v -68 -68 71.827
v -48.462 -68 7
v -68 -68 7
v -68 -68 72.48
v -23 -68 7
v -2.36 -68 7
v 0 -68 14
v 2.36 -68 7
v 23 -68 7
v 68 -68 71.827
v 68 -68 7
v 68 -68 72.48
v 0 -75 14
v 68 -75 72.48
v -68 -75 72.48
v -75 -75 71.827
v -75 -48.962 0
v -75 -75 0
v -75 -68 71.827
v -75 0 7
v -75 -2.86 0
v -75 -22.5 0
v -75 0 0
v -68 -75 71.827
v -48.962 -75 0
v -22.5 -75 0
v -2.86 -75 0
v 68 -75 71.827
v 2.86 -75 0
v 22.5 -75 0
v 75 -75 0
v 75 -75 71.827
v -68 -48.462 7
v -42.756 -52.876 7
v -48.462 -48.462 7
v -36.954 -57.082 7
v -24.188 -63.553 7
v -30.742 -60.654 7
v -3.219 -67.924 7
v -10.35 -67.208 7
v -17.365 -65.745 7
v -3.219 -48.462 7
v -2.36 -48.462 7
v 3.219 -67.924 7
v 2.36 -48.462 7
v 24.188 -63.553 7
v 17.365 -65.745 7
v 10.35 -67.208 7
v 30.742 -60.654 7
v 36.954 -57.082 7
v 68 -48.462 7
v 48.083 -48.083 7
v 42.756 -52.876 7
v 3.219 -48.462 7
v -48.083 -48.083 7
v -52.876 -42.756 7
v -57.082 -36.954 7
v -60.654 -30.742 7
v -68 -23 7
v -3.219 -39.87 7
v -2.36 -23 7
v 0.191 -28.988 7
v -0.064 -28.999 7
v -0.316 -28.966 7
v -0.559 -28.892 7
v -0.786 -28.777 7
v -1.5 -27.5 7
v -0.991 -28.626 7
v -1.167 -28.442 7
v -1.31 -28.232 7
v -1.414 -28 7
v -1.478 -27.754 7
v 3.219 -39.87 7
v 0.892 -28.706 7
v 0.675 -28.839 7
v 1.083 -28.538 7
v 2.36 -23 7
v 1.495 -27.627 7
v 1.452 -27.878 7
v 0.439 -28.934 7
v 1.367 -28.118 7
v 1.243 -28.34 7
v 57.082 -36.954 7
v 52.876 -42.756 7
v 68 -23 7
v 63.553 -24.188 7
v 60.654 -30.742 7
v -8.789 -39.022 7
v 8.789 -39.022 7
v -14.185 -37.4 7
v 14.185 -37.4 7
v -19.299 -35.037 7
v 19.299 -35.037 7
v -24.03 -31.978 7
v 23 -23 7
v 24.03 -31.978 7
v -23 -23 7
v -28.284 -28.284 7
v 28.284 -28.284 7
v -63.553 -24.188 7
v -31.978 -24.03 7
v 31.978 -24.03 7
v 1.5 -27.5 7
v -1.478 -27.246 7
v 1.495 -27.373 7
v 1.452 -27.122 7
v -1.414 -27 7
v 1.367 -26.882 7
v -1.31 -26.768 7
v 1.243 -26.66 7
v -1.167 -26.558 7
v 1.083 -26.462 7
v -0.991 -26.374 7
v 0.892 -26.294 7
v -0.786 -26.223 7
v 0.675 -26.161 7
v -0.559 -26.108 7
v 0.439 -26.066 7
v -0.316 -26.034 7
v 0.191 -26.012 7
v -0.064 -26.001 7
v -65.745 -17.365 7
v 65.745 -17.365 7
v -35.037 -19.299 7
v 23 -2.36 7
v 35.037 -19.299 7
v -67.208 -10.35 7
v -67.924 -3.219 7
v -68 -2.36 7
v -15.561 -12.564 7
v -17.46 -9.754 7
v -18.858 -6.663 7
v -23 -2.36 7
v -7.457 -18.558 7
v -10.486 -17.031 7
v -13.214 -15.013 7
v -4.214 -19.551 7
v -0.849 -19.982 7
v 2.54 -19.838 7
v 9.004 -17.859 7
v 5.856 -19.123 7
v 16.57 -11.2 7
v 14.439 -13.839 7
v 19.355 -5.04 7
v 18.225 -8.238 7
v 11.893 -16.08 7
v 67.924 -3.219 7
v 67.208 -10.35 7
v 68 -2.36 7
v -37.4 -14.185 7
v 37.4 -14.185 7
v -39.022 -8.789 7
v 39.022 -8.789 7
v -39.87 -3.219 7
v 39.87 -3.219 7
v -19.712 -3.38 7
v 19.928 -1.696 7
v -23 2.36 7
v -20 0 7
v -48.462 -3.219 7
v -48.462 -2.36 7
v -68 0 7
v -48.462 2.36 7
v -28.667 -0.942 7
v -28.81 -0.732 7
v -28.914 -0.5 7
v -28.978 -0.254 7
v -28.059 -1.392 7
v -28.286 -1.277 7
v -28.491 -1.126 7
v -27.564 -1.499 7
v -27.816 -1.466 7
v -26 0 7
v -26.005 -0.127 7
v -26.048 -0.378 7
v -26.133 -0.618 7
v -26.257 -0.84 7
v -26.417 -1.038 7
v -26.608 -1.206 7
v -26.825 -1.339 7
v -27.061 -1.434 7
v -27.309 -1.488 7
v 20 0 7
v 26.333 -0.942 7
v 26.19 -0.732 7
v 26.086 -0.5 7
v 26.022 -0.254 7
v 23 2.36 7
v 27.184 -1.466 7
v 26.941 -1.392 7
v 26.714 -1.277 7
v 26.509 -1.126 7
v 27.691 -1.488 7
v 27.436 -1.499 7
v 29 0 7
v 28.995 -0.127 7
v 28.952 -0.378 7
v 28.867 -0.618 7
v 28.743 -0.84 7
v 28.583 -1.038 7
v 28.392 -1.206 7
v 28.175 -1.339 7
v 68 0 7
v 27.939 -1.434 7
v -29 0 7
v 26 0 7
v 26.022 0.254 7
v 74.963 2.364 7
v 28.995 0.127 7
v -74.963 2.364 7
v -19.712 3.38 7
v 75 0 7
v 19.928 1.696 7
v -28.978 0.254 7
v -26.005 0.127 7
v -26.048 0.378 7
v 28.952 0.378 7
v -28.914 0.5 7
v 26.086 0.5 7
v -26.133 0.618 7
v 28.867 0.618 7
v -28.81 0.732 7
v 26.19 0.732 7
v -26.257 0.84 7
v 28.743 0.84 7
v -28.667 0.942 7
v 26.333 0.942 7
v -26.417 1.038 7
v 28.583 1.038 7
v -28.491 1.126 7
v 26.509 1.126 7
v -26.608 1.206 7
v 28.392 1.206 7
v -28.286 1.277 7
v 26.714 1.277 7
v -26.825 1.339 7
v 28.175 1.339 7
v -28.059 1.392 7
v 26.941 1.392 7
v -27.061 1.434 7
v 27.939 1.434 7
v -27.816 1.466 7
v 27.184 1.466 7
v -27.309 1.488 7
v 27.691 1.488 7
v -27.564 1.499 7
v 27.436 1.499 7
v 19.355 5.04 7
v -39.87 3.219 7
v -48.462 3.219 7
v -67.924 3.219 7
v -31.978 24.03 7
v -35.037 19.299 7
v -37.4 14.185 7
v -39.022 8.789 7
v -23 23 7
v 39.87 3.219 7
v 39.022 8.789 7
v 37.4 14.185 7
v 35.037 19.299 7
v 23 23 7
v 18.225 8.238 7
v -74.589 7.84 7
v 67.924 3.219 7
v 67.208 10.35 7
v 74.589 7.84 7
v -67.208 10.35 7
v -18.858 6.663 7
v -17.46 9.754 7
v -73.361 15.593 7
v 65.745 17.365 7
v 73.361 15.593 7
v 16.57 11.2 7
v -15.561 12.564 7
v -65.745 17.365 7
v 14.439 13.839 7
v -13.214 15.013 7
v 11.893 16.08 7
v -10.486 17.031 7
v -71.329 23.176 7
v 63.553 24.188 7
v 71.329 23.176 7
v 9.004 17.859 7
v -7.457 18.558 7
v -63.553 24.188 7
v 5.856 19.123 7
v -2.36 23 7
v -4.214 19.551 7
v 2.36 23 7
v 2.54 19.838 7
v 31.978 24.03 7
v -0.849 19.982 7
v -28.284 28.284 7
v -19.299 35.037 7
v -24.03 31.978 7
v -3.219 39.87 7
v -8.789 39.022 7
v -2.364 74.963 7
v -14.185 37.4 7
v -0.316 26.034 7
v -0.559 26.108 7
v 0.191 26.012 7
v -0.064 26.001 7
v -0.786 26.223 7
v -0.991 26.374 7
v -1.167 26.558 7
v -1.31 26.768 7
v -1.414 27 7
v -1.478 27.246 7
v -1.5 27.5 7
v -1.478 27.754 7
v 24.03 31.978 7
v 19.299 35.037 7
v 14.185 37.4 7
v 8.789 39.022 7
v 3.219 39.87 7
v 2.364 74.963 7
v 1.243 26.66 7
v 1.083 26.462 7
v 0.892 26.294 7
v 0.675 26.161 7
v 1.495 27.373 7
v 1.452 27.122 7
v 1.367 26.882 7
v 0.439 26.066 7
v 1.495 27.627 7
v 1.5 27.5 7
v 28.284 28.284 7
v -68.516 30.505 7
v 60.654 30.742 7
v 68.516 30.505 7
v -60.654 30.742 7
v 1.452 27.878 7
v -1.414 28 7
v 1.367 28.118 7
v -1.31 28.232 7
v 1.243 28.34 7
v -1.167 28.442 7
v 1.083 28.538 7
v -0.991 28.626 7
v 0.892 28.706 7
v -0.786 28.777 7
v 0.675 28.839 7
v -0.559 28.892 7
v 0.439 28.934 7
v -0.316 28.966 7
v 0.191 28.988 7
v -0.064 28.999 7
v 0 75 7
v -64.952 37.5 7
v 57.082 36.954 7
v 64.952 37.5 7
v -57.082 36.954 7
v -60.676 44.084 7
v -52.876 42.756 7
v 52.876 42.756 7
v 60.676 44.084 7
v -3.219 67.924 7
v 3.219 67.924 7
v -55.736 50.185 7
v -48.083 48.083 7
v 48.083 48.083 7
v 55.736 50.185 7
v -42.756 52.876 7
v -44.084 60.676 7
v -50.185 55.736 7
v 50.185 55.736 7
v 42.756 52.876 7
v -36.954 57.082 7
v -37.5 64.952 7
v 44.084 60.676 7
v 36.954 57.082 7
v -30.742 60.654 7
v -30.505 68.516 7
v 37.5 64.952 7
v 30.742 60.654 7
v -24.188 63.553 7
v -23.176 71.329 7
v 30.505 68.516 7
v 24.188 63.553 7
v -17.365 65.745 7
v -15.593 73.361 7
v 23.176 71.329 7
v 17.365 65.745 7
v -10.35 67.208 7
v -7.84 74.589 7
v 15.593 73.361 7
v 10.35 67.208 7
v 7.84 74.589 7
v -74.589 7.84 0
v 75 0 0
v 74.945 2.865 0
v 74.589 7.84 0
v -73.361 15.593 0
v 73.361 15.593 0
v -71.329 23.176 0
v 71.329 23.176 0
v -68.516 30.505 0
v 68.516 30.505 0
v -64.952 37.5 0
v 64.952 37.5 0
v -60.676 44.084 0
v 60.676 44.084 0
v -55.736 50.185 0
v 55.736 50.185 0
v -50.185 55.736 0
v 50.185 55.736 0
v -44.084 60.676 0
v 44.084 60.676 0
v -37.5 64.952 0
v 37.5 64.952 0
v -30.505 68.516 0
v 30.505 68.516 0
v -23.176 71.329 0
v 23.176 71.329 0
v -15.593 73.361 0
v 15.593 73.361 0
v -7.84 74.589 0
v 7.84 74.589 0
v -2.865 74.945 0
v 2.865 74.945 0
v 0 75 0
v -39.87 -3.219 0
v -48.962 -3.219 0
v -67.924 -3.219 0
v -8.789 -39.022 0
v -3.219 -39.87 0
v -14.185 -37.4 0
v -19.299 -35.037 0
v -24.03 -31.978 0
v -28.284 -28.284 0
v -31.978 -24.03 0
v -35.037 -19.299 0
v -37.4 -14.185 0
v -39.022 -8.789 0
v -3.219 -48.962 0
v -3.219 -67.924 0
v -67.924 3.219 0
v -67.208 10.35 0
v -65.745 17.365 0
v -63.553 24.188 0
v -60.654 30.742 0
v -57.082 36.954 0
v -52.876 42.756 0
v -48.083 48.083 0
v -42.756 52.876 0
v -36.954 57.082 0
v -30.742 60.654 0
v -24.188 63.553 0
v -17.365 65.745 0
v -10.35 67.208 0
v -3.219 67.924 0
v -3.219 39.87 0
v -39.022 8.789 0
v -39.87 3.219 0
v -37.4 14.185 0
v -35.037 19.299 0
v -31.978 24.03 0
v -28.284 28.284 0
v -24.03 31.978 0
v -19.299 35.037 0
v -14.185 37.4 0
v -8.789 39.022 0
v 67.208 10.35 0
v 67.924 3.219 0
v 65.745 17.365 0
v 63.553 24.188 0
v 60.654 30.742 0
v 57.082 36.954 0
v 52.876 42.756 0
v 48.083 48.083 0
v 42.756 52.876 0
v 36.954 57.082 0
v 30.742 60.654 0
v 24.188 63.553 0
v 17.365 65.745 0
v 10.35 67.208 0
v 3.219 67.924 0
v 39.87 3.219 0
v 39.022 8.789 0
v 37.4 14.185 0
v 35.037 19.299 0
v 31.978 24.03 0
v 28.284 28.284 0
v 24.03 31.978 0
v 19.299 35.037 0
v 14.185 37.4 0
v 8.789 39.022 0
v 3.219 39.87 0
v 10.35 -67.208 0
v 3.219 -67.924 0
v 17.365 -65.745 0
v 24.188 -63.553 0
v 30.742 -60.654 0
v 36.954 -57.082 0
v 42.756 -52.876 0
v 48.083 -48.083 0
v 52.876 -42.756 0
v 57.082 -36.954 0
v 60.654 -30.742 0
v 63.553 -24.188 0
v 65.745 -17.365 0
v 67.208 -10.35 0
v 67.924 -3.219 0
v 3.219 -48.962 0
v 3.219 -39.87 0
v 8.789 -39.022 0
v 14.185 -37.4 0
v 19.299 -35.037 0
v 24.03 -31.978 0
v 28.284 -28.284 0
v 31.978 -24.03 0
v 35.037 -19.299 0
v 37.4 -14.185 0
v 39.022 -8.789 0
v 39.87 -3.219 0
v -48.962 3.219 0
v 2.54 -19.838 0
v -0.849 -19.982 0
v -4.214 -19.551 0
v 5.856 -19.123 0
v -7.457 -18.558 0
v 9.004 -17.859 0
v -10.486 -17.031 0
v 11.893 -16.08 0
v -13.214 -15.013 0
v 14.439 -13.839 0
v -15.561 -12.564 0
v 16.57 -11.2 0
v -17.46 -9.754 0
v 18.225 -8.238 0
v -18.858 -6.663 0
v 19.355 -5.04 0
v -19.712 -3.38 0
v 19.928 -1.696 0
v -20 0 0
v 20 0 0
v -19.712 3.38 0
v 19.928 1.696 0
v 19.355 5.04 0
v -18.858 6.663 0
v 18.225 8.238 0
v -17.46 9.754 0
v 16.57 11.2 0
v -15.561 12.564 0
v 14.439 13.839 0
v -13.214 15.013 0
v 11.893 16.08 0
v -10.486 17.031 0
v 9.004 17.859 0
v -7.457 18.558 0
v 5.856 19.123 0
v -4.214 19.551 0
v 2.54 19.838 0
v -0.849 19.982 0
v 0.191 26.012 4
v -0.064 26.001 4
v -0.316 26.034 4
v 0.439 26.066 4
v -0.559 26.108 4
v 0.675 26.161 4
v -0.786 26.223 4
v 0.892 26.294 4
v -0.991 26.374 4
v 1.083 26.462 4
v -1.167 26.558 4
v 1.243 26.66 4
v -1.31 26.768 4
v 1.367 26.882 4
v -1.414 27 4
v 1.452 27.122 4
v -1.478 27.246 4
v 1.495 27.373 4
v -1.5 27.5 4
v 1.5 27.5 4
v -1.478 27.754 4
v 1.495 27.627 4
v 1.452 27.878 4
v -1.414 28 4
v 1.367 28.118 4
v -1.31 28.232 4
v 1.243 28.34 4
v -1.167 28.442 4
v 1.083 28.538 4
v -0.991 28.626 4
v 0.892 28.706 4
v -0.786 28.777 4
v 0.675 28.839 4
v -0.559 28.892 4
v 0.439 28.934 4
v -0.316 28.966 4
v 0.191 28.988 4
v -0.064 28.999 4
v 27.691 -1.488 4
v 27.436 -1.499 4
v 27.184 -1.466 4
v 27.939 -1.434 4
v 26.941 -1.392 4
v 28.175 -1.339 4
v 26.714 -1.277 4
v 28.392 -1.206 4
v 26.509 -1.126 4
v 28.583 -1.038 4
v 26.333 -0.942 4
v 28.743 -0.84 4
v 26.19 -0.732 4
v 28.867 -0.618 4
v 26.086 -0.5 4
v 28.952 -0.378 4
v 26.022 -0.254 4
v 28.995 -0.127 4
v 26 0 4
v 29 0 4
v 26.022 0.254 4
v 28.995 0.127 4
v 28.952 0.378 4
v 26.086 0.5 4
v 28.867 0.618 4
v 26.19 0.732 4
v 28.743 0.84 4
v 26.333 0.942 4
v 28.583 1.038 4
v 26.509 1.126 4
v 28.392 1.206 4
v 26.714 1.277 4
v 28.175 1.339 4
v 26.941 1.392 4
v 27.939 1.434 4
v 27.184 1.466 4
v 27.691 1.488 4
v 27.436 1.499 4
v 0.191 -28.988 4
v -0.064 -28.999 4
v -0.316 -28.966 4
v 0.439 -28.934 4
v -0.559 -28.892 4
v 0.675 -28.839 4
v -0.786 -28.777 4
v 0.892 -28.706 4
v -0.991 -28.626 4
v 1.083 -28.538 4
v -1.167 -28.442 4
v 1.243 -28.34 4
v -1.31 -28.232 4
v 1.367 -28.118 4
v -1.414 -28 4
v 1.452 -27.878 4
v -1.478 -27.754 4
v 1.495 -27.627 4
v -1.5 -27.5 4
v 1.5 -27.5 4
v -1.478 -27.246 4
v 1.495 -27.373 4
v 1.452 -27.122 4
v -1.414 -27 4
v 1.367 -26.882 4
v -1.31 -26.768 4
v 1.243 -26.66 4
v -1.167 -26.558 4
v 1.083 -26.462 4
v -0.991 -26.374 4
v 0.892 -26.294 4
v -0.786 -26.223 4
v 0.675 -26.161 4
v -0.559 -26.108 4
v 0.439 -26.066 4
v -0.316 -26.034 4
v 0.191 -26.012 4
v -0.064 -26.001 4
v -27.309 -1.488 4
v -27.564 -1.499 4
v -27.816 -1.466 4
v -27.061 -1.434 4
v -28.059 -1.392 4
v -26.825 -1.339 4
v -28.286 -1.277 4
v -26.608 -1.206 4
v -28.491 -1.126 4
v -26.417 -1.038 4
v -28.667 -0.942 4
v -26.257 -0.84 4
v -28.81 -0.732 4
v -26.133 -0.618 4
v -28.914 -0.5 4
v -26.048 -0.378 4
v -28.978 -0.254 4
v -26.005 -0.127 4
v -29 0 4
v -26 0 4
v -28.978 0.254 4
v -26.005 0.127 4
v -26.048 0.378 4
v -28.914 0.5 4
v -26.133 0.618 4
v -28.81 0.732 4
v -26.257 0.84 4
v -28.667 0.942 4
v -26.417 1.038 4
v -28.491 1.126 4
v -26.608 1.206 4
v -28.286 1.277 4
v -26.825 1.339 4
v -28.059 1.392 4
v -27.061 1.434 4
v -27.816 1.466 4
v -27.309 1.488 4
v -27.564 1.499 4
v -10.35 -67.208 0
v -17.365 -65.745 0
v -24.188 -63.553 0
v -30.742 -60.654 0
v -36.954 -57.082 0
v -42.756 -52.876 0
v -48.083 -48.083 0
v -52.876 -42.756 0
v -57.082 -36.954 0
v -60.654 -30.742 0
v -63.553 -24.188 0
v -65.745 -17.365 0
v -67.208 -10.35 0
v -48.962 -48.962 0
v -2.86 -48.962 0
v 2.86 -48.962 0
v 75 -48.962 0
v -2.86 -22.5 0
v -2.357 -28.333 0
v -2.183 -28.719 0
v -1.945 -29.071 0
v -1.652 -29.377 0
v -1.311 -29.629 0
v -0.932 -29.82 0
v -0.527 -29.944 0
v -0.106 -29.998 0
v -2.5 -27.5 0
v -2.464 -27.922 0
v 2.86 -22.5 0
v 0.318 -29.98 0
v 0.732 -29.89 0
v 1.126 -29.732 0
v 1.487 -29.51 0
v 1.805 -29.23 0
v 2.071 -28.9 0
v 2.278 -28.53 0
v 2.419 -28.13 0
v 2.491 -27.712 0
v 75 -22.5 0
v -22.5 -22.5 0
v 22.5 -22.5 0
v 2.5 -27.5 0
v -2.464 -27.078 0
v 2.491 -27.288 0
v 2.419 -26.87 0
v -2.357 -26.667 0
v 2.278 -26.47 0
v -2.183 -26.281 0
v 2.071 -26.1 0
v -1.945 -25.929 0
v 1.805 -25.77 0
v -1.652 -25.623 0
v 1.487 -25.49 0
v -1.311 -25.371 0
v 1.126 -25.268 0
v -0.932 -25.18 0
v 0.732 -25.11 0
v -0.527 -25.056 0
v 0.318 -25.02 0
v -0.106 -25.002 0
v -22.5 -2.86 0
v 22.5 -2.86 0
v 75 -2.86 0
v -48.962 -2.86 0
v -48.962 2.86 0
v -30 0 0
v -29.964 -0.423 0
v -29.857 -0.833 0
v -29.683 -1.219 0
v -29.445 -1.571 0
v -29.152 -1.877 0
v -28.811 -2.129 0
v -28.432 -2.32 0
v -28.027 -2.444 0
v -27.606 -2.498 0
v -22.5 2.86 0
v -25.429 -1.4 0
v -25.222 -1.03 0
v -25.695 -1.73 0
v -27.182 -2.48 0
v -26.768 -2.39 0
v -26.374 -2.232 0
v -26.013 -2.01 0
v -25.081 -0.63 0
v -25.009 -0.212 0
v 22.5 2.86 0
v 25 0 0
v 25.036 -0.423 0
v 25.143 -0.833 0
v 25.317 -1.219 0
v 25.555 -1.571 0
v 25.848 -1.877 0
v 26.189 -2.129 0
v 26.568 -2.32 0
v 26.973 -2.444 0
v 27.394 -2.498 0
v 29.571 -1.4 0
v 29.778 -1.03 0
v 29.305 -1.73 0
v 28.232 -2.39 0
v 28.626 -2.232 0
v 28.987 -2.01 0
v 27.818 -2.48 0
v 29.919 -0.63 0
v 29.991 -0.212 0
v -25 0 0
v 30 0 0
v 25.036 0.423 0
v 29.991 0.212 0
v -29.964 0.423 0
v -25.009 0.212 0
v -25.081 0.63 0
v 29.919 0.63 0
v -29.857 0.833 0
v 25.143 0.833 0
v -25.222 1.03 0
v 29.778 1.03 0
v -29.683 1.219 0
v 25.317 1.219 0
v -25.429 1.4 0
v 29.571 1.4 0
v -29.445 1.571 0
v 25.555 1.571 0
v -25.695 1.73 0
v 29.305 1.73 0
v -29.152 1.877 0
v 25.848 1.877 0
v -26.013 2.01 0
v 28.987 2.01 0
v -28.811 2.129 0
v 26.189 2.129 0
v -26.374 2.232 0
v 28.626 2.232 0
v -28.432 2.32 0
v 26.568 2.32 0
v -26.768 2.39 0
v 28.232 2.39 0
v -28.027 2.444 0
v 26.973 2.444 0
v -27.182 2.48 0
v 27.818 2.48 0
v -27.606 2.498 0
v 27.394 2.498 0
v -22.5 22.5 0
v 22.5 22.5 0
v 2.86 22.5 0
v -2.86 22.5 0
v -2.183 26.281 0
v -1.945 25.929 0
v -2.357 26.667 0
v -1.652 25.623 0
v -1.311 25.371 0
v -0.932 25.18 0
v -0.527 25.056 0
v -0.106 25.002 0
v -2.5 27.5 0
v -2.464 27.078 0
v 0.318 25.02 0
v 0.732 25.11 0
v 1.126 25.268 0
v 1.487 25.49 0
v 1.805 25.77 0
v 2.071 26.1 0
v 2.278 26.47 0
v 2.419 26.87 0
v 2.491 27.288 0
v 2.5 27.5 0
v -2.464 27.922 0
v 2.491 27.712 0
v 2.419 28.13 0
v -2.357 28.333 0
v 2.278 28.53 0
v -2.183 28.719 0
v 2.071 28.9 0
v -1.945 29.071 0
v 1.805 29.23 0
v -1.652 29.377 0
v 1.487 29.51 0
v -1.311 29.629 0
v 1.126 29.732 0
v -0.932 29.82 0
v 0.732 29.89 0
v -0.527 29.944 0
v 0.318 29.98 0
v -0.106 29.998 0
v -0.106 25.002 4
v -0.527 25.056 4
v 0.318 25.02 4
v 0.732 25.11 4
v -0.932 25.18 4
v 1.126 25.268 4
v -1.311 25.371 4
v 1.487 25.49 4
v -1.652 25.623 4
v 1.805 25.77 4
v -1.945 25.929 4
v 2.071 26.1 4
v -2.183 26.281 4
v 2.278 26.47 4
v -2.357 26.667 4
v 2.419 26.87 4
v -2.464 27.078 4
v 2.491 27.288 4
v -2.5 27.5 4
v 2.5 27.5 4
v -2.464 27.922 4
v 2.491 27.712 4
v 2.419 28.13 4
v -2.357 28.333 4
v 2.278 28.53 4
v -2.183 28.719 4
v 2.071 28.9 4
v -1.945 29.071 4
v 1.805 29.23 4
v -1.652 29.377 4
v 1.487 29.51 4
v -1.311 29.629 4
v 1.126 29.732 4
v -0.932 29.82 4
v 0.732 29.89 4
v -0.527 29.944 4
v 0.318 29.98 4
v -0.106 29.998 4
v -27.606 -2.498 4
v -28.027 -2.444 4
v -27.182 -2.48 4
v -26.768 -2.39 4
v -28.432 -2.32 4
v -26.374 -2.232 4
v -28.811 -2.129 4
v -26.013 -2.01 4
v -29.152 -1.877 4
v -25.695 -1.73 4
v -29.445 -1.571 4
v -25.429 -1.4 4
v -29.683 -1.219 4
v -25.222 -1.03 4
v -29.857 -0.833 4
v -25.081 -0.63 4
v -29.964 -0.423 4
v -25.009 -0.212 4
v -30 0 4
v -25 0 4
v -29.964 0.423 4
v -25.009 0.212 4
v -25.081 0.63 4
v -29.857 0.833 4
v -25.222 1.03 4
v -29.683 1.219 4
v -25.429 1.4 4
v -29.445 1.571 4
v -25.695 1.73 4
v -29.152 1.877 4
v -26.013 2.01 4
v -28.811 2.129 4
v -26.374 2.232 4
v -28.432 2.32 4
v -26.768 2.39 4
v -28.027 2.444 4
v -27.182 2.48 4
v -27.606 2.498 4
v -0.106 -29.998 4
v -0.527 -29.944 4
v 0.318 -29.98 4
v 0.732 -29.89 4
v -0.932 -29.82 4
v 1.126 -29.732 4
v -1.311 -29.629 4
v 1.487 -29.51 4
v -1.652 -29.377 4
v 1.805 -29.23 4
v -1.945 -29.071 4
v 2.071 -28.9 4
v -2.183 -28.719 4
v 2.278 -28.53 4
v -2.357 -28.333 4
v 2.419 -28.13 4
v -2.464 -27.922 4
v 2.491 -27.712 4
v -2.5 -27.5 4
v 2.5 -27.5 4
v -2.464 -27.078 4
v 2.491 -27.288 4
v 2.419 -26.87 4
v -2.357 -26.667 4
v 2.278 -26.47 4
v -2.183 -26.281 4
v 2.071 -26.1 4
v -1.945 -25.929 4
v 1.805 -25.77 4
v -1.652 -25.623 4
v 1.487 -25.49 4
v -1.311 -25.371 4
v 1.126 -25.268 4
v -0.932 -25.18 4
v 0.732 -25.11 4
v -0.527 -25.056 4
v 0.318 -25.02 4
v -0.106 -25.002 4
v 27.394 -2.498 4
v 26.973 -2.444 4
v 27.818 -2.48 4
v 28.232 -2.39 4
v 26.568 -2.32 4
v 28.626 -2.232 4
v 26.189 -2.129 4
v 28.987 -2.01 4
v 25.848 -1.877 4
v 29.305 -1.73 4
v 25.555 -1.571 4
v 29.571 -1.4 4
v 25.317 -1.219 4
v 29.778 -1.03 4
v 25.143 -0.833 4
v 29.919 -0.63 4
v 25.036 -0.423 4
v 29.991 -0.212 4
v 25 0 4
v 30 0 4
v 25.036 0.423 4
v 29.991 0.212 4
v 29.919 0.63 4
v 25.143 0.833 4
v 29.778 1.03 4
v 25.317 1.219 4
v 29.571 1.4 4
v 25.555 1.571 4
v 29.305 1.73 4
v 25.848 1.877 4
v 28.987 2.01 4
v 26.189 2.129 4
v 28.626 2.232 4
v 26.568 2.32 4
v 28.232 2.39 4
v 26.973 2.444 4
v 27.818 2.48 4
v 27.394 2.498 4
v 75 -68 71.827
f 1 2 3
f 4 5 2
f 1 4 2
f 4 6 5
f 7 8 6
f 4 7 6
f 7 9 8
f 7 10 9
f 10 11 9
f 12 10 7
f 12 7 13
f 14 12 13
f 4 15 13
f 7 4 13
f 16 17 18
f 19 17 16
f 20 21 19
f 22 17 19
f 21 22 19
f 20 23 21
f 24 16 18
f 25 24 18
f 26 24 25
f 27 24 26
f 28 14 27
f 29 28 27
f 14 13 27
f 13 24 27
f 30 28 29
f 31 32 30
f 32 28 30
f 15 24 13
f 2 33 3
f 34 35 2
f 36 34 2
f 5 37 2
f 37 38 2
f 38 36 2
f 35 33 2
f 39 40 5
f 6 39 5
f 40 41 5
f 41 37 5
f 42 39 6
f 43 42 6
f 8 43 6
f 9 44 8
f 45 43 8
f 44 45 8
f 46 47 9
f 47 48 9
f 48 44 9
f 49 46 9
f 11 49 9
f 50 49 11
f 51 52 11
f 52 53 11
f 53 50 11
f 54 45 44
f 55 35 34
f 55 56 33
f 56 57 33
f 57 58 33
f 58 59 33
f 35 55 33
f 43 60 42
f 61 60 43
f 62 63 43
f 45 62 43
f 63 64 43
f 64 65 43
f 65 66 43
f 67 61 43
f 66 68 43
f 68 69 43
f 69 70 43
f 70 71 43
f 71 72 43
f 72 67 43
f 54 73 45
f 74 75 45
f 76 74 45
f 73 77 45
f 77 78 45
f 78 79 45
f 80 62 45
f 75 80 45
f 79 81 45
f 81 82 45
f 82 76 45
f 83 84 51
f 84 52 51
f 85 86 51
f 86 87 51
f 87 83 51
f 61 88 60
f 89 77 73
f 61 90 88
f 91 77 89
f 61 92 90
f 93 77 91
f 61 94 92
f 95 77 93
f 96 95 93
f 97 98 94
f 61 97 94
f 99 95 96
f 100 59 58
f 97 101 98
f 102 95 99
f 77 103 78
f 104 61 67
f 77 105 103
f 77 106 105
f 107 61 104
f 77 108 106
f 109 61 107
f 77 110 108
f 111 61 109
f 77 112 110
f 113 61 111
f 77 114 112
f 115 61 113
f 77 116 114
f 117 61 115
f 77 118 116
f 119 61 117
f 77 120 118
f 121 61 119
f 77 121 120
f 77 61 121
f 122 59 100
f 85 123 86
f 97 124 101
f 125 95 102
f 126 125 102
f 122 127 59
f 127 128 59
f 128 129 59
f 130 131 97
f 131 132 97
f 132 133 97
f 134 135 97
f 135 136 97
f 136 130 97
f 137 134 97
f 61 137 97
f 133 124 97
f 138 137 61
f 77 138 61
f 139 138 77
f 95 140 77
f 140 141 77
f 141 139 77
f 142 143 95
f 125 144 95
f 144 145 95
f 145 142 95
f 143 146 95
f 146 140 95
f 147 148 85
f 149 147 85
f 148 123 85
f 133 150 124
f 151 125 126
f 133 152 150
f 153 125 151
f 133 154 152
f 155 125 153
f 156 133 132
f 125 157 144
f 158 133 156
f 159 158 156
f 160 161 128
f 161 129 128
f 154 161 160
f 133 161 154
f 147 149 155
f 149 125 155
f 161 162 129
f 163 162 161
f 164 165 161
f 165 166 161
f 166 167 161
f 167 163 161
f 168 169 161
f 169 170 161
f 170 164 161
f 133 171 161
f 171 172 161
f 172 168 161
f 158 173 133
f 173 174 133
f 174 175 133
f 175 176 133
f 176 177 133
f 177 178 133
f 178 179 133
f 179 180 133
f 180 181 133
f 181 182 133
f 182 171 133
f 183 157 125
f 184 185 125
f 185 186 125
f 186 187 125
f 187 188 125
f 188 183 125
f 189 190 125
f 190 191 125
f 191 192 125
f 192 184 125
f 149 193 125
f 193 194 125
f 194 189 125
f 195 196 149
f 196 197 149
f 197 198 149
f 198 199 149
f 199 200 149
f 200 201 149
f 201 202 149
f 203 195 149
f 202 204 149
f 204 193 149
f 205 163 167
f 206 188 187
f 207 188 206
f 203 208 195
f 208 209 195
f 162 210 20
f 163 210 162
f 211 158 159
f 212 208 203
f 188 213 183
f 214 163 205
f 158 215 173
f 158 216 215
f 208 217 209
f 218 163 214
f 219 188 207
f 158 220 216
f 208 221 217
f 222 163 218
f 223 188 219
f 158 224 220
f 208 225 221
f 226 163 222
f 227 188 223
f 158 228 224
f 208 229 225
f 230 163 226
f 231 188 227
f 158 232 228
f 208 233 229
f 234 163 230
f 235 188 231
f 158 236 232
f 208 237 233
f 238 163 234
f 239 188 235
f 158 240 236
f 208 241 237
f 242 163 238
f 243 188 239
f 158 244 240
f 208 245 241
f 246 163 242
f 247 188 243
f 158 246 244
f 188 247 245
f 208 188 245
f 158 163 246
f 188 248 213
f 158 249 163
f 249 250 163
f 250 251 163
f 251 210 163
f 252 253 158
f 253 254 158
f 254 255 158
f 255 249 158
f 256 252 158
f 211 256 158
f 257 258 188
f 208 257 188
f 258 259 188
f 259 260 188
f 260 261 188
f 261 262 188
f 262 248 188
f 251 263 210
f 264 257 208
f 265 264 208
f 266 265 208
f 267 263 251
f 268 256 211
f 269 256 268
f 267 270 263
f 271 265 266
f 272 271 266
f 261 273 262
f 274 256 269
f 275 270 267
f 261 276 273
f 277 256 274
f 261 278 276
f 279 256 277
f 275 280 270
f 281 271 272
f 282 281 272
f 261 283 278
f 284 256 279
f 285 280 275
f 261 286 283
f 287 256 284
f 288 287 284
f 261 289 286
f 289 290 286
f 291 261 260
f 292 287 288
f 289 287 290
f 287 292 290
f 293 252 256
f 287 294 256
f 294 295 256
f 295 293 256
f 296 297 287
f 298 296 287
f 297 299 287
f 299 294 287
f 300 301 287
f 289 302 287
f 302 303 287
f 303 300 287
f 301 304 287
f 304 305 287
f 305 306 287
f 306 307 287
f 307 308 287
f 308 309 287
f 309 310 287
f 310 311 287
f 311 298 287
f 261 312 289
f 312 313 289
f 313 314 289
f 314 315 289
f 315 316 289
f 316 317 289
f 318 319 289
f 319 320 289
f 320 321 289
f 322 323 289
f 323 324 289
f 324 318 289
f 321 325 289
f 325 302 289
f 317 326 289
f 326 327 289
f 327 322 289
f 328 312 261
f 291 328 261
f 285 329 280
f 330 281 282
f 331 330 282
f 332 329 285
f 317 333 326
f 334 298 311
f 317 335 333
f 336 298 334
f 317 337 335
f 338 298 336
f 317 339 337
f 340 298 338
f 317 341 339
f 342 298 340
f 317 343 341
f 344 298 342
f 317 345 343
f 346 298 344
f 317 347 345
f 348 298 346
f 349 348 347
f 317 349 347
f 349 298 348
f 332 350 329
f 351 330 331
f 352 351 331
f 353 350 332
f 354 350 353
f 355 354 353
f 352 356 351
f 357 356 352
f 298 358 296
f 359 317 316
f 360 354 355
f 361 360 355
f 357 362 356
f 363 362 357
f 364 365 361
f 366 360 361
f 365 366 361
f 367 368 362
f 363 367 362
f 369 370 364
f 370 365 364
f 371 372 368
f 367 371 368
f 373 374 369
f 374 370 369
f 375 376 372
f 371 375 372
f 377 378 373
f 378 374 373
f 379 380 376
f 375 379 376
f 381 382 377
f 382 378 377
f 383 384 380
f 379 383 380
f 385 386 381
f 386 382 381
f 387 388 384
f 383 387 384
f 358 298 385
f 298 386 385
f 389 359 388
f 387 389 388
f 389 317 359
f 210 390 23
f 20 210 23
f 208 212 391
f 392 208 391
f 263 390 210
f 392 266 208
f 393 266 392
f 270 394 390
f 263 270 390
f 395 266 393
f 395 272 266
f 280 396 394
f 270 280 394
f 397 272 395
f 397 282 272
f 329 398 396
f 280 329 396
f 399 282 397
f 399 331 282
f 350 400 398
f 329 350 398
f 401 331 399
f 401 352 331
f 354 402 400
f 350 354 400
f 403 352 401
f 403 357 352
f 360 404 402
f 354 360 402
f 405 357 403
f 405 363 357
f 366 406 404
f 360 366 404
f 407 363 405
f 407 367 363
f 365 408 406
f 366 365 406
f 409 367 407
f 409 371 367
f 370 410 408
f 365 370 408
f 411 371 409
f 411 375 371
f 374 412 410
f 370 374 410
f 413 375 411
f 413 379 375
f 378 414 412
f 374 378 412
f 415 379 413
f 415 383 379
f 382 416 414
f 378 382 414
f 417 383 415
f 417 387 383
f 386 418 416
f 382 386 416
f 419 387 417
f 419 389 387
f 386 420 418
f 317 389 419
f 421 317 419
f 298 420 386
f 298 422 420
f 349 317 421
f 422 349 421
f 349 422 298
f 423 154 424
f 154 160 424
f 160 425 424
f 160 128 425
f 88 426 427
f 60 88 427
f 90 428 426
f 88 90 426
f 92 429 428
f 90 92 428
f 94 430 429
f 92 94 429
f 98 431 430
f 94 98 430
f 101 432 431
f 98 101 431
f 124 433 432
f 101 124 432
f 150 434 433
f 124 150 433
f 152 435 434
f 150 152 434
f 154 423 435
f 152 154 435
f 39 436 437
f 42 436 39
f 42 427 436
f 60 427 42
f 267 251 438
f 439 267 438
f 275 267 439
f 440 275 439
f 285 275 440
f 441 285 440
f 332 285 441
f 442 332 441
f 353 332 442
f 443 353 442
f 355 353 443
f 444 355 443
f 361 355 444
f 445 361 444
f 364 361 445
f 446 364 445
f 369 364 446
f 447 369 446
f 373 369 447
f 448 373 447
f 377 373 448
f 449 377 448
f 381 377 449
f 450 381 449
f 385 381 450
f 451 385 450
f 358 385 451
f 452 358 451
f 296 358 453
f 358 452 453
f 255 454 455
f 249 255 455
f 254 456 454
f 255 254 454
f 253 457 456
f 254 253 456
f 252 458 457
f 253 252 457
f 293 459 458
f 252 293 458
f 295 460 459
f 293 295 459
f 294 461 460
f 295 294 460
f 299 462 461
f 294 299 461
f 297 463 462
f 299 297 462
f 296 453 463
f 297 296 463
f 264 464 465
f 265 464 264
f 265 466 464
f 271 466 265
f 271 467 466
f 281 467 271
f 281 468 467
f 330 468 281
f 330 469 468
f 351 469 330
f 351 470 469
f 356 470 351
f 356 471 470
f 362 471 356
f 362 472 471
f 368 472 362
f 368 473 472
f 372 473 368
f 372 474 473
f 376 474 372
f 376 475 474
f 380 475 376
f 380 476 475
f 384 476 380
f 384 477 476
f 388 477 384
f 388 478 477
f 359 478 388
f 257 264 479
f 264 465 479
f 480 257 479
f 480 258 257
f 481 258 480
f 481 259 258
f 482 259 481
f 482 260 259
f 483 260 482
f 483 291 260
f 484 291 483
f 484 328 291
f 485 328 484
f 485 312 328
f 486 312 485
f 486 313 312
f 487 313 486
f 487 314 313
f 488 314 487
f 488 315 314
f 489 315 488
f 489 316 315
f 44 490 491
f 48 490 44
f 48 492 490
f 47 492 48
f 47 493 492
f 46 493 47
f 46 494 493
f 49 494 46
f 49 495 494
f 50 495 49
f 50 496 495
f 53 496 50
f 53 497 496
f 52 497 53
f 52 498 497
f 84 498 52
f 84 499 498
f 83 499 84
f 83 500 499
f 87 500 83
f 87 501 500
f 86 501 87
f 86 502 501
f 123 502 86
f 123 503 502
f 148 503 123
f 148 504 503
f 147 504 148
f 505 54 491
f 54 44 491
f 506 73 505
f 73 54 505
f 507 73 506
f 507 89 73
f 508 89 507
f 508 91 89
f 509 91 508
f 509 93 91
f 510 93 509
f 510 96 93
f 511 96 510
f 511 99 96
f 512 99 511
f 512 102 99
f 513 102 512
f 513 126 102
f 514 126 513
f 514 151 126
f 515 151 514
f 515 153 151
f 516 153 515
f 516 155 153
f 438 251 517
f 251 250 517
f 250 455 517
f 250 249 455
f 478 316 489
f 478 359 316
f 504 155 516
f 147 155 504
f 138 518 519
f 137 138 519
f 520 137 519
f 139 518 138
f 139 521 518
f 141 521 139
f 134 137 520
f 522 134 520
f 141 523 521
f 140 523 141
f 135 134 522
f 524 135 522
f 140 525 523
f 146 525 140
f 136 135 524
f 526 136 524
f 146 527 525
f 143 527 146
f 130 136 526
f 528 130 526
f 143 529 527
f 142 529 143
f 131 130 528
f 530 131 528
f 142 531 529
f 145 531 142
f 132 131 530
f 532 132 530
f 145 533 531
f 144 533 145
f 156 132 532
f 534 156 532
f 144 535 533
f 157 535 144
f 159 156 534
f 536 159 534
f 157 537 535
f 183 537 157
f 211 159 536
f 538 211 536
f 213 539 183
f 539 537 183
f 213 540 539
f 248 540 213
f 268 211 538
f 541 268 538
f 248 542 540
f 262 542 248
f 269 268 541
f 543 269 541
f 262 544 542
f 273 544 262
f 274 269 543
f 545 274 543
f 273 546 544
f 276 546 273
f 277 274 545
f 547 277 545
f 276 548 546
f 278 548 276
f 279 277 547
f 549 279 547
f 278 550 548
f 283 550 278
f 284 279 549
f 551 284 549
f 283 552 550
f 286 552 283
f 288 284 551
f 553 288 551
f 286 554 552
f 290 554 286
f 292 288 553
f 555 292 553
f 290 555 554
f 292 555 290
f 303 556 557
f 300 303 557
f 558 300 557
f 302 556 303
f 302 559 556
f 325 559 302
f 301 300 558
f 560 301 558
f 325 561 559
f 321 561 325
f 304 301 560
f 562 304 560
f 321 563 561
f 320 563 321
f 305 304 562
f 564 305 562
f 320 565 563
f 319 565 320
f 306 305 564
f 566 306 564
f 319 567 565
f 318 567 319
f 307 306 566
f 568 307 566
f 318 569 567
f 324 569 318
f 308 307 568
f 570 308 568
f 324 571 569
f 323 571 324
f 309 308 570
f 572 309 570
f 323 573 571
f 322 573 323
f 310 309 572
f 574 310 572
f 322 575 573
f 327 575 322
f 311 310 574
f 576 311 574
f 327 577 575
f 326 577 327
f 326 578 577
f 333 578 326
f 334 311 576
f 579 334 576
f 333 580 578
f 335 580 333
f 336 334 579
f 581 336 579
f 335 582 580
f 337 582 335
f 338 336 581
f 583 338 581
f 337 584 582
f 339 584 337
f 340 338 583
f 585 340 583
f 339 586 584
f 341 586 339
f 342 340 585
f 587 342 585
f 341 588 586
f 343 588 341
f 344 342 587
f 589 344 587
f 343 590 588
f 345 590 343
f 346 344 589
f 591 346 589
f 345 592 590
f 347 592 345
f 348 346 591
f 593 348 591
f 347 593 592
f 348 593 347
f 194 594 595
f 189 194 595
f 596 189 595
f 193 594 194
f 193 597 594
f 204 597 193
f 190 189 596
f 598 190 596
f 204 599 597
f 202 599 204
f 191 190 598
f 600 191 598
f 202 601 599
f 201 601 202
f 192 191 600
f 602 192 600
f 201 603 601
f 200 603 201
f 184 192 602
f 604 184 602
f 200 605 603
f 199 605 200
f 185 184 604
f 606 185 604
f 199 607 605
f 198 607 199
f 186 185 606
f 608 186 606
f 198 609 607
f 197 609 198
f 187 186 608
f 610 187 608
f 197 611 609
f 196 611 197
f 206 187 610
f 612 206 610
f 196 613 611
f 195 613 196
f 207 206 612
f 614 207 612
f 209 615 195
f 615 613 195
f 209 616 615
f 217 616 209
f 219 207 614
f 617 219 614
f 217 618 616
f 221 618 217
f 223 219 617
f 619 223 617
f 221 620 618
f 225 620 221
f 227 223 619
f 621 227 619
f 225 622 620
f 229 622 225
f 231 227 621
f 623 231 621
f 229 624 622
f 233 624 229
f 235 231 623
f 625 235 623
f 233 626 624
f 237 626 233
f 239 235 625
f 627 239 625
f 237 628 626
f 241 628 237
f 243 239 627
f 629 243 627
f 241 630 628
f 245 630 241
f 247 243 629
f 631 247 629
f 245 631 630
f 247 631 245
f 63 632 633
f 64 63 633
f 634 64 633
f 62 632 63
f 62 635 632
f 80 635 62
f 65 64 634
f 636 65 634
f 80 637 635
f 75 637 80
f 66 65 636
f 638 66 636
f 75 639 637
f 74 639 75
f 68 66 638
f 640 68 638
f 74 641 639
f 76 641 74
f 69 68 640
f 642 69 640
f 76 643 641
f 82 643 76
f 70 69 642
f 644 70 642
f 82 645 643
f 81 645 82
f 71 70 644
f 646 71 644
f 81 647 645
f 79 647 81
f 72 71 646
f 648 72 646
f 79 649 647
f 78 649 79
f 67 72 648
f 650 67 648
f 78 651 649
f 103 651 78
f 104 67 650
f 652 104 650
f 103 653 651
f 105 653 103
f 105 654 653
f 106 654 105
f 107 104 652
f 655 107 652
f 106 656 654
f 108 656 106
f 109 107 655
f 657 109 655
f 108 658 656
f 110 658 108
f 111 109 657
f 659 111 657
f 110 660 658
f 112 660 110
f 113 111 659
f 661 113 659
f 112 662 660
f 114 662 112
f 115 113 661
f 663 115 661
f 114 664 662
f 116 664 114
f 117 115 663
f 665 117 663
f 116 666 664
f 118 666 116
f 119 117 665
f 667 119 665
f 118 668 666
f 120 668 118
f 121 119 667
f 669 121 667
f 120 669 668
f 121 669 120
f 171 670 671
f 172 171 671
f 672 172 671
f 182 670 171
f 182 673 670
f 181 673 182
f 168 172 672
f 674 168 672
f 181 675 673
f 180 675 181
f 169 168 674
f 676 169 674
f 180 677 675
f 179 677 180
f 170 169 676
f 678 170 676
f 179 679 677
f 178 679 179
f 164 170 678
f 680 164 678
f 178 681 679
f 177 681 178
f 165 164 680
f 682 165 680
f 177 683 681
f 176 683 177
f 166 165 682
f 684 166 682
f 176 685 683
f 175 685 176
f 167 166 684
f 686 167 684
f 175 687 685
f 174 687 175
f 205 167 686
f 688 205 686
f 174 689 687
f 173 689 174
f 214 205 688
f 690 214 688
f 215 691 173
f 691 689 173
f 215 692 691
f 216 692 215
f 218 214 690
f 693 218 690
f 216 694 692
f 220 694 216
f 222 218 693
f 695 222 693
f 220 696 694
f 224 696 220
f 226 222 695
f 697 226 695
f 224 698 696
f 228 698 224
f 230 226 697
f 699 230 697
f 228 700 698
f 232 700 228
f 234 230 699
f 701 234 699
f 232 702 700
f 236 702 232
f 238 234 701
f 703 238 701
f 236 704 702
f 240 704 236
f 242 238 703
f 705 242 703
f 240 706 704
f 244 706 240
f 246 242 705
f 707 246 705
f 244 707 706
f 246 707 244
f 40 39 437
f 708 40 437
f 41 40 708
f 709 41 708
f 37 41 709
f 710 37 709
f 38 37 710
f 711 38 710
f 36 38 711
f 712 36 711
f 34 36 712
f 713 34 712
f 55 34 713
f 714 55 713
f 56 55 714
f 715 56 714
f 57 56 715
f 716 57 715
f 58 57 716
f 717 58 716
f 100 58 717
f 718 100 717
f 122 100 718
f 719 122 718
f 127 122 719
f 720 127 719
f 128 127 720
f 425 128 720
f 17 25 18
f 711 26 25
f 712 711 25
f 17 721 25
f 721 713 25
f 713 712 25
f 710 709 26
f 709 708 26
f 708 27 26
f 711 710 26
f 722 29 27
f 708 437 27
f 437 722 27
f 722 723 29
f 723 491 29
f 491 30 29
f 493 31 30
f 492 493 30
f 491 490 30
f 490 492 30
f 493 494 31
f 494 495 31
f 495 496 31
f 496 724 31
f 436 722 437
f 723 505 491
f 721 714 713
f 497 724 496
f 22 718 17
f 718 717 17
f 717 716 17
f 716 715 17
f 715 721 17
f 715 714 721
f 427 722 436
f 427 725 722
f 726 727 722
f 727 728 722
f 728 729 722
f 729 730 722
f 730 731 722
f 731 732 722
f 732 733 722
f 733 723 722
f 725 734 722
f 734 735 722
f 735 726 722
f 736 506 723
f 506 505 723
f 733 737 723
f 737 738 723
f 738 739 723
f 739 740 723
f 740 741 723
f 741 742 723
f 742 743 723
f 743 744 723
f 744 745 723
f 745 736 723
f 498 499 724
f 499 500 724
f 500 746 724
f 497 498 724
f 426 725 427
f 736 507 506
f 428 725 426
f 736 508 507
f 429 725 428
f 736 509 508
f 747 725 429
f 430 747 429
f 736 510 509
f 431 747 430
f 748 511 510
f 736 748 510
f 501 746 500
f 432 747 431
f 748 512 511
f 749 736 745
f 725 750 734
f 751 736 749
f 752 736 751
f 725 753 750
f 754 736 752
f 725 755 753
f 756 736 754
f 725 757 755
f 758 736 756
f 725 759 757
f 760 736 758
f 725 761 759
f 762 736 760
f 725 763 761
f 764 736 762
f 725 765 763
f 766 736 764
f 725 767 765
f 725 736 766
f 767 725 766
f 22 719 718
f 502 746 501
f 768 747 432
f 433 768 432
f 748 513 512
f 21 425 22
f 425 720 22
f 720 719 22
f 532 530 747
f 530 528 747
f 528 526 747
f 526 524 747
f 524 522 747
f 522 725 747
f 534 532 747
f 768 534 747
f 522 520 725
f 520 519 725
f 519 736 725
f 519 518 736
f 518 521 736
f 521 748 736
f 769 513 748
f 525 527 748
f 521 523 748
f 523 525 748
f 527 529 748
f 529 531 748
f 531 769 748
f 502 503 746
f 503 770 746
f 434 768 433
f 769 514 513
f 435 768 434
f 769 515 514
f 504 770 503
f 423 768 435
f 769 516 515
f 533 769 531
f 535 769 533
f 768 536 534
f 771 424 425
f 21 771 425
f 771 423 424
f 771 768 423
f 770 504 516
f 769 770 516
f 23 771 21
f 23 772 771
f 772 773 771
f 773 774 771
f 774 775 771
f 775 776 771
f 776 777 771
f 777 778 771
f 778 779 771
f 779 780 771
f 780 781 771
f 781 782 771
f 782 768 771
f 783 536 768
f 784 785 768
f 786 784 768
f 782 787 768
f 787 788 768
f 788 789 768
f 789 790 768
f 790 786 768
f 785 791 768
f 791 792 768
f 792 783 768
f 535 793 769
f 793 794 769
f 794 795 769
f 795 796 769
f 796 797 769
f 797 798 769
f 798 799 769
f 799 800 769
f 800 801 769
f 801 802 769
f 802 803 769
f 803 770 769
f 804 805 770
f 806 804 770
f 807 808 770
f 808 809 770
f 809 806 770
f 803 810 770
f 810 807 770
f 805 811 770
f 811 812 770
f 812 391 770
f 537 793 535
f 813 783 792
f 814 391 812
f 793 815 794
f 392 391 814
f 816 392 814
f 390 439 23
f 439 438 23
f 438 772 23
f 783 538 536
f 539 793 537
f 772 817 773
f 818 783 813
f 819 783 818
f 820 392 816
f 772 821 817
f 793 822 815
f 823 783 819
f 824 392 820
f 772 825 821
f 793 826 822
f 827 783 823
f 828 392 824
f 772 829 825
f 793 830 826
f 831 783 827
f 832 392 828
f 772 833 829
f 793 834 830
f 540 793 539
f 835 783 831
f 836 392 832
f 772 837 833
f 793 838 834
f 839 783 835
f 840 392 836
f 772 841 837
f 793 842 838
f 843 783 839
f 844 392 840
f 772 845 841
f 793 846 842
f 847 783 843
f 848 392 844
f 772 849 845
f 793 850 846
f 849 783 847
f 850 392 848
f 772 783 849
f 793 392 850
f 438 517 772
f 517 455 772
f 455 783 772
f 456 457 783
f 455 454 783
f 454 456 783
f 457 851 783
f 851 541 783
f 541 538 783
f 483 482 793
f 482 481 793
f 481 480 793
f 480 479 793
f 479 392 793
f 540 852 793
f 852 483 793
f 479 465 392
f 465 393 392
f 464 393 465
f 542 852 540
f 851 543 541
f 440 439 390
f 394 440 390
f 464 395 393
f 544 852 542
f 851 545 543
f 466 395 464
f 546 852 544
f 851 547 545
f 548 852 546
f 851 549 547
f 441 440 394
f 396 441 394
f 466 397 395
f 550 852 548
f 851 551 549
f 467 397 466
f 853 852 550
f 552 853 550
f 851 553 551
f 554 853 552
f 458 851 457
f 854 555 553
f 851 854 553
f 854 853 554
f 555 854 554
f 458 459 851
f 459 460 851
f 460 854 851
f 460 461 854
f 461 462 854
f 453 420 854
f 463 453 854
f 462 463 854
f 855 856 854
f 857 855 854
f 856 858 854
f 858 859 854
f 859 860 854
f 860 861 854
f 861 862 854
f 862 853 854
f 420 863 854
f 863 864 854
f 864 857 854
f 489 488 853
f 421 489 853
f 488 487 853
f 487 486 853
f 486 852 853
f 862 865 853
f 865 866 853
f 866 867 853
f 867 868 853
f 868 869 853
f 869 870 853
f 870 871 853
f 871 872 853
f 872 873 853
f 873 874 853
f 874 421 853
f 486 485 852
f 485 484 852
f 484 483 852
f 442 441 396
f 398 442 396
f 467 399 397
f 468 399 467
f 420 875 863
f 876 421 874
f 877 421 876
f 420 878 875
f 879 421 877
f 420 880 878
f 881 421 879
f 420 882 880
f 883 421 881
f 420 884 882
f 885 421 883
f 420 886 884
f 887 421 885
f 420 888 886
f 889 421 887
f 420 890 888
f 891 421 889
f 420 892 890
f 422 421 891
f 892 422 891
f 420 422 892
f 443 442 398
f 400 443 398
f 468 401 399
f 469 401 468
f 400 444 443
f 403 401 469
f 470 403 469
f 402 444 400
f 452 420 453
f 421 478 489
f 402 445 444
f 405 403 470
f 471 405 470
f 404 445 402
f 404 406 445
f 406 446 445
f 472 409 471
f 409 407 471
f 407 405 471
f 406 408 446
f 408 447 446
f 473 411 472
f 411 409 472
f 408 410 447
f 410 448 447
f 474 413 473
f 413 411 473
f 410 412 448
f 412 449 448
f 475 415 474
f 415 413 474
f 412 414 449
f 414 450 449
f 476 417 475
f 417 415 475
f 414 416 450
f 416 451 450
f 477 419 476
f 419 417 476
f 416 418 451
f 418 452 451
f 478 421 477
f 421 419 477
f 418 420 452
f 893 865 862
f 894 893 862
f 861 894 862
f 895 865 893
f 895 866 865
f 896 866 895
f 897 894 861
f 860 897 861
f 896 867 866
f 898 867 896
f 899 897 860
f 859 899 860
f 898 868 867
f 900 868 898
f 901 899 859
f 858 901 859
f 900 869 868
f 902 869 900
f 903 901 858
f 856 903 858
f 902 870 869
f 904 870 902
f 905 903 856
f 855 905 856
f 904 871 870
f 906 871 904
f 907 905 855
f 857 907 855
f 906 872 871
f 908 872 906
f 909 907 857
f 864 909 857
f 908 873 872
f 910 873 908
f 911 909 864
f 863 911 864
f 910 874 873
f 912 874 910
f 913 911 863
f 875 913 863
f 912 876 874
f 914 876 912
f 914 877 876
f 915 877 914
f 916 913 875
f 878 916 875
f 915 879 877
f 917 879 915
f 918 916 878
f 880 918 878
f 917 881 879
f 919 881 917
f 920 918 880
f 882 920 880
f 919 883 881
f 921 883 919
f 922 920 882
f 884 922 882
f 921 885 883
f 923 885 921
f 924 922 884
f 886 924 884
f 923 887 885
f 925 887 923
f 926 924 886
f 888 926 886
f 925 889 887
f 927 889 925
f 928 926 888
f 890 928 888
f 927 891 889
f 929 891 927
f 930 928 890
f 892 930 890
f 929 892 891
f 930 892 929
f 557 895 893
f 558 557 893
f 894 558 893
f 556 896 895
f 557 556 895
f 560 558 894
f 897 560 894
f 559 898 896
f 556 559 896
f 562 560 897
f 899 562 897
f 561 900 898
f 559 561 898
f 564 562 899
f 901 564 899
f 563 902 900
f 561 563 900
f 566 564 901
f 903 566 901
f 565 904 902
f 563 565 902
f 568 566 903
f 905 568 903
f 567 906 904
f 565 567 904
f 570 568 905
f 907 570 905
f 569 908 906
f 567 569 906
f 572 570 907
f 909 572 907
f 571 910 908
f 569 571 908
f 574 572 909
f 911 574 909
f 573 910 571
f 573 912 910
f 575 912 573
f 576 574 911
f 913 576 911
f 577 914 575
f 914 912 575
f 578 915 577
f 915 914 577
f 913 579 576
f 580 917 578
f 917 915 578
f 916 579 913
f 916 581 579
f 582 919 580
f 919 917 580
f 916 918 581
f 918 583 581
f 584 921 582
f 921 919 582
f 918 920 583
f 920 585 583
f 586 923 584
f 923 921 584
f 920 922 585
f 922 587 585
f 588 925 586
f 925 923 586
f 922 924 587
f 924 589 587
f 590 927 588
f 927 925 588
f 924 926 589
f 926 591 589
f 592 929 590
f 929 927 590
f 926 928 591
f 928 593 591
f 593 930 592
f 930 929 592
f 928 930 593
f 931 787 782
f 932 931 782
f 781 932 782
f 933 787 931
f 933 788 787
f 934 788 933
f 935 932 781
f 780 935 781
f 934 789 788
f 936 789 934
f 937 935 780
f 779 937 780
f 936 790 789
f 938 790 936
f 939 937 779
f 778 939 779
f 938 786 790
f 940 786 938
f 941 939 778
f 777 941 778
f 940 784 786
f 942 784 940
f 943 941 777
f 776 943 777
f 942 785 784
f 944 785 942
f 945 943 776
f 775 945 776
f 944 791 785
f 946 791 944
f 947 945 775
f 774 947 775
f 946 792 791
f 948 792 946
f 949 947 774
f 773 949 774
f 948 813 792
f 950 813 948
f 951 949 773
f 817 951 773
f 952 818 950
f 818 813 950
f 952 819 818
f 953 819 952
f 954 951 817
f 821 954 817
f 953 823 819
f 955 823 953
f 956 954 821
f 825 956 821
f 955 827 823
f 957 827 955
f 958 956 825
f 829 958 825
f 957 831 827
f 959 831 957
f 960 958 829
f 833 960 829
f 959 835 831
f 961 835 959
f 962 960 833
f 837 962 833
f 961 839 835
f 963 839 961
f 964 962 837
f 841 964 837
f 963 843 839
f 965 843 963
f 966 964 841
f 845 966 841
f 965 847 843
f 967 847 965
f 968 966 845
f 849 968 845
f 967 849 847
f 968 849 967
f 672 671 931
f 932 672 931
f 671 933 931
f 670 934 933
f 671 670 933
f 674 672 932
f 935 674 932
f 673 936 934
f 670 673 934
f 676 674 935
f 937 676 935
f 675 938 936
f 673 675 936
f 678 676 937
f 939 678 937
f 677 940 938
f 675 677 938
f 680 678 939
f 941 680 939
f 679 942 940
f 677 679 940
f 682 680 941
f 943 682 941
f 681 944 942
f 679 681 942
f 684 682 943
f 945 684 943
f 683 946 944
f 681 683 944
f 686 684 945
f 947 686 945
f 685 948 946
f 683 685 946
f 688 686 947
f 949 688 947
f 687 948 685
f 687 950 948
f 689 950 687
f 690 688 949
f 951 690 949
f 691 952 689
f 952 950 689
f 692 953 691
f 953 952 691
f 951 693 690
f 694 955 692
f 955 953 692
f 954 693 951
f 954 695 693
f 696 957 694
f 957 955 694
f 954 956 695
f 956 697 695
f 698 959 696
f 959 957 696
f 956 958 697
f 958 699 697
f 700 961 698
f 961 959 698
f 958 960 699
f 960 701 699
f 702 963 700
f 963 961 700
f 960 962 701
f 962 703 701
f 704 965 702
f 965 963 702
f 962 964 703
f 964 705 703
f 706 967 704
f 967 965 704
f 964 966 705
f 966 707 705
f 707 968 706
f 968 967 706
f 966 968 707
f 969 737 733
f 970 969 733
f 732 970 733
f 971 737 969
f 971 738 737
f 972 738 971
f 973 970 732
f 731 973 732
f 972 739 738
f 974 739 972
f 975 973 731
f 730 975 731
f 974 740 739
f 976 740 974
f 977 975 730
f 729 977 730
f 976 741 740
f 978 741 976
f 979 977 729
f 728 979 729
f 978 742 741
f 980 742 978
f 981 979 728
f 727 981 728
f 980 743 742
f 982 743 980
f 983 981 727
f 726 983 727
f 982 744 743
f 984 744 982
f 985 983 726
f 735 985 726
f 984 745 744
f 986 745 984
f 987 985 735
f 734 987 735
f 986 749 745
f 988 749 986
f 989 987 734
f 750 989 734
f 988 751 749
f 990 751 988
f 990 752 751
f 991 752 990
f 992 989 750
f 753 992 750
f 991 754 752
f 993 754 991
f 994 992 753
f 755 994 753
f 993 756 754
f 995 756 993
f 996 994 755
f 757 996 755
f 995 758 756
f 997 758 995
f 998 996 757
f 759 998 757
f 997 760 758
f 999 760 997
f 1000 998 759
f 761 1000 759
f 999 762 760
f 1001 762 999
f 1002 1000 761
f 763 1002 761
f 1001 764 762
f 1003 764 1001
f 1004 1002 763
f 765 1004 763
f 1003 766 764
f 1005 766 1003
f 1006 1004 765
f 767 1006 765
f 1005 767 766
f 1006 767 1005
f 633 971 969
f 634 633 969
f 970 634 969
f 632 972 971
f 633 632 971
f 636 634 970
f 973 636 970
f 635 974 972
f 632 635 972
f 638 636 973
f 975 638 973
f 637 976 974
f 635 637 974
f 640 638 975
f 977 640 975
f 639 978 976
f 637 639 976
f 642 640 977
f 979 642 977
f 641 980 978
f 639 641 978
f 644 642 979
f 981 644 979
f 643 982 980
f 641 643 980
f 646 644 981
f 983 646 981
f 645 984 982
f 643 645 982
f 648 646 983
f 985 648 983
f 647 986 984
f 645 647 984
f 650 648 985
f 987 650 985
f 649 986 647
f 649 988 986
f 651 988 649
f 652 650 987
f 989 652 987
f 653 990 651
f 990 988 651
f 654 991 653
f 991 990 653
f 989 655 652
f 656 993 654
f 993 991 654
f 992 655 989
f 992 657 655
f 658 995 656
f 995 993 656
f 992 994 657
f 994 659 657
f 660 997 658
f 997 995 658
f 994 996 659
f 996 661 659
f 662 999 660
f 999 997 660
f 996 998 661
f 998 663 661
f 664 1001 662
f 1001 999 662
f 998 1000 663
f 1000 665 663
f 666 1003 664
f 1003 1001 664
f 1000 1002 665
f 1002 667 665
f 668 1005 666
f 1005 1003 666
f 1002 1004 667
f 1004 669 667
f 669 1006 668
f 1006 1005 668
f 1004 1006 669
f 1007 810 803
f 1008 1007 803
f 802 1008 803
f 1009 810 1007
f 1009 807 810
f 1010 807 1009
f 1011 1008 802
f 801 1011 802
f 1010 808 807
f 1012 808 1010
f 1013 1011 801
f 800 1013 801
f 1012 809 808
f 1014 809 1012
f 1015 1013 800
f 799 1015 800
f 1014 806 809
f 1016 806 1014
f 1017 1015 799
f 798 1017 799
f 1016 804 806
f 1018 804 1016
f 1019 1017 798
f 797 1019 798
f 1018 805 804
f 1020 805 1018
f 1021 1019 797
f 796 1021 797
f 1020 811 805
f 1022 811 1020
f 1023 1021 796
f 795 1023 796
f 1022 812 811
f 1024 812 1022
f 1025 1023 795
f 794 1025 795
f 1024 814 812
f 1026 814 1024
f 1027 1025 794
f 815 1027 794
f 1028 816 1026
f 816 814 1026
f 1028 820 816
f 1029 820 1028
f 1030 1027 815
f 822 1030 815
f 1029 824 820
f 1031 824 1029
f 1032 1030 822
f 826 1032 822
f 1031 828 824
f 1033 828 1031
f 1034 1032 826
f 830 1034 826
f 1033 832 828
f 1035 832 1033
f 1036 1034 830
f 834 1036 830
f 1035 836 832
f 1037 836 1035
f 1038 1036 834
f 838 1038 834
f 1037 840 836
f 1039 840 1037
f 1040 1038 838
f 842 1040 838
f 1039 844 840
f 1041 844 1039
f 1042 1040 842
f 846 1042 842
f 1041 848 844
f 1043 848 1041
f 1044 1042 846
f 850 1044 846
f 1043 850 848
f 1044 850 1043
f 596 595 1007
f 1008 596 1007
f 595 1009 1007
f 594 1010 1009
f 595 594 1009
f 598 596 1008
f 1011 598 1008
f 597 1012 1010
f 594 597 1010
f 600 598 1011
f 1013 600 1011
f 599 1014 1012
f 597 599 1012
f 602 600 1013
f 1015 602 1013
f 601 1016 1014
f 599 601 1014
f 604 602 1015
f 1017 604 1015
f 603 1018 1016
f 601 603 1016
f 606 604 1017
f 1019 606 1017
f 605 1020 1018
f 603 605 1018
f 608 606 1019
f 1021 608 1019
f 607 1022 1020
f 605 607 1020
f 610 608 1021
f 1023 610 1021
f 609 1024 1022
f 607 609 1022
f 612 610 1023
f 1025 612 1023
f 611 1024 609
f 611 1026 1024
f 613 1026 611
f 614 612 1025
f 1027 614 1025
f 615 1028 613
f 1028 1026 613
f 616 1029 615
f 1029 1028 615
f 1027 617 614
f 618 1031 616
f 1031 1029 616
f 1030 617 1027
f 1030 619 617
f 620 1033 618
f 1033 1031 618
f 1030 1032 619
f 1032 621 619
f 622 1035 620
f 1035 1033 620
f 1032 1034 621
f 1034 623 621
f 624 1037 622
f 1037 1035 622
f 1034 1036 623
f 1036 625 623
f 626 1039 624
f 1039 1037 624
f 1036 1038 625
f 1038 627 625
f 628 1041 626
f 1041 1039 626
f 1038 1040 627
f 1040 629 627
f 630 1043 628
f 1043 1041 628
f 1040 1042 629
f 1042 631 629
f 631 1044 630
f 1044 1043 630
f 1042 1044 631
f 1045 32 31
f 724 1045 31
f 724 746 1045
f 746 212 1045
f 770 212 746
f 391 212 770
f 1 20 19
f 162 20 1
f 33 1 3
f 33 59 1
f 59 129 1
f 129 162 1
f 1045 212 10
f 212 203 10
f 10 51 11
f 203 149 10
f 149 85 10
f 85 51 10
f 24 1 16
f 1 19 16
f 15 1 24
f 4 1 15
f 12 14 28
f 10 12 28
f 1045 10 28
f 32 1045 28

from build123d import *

# Parameters (mm, degrees)
SKETCH_1_R          = 75
SKETCH_1_R_2        = 1.5
SKETCH_1_R_3        = 20
EXTRUDE_1_DEPTH     = 7
SKETCH_2_R          = 2.5
CUT_EXTRUDE_1_DEPTH = 4
EXTRUDE_2_DEPTH     = 7
EXTRUDE_3_DEPTH     = 7
EXTRUDE_4_DEPTH     = 7
SKETCH_6_W          = 6.673333333
SKETCH_6_H          = 7
CUT_EXTRUDE_2_DEPTH = 7


with BuildPart() as part:
    # 草图1 → 凸台-拉伸1 (new body)
    with BuildSketch(Plane.XY):
        with Locations(Location((0, 0, 0), (0, 0, 180))):
            Circle(SKETCH_1_R)
        with BuildLine():
            ThreePointArc((-3.219389508, -67.923747918), (-48.083261121, -48.083261121), (-67.923747918, -3.219389508))
            Line((-67.923747918, -3.219389508), (-59, -3.219389508))
            Line((-59, -3.219389508), (-39.870233649, -3.219389508))
            ThreePointArc((-39.870233649, -3.219389508), (-28.284271247, -28.284271247), (-3.219389508, -39.870233649))
            Line((-3.219389508, -39.870233649), (-3.219389508, -67.923747918))
        make_face(mode=Mode.SUBTRACT)
        with Locations(Location((0, -27.5, 0), (0, 0, 180))):
            Circle(SKETCH_1_R_2, mode=Mode.SUBTRACT)
        with BuildLine():
            Line((39.870233649, -3.219389508), (67.923747918, -3.219389508))
            ThreePointArc((67.923747918, -3.219389508), (48.083261121, -48.083261121), (3.219389508, -67.923747918))
            Line((3.219389508, -67.923747918), (3.219389508, -59))
            Line((3.219389508, -59), (3.219389508, -39.870233649))
            ThreePointArc((3.219389508, -39.870233649), (28.284271247, -28.284271247), (39.870233649, -3.219389508))
        make_face(mode=Mode.SUBTRACT)
        with Locations(Location((27.5, 0, 0), (0, 0, 180))):
            Circle(SKETCH_1_R_2, mode=Mode.SUBTRACT)
        with Locations(Location((-27.5, 0, 0), (0, 0, 180))):
            Circle(SKETCH_1_R_2, mode=Mode.SUBTRACT)
        with BuildLine():
            ThreePointArc((-67.923747918, 3.219389508), (-48.083261121, 48.083261121), (-3.219389508, 67.923747918))
            Line((-3.219389508, 67.923747918), (-3.219389508, 59))
            Line((-3.219389508, 59), (-3.219389508, 39.870233649))
            ThreePointArc((-3.219389508, 39.870233649), (-28.284271247, 28.284271247), (-39.870233649, 3.219389508))
            Line((-39.870233649, 3.219389508), (-59.015976915, 3.219389508))
            Line((-59.015976915, 3.219389508), (-67.923747918, 3.219389508))
        make_face(mode=Mode.SUBTRACT)
        with Locations(Location((0, 0, 0), (0, 0, 180))):
            Circle(SKETCH_1_R_3, mode=Mode.SUBTRACT)
        with Locations(Location((0, 27.5, 0), (0, 0, 180))):
            Circle(SKETCH_1_R_2, mode=Mode.SUBTRACT)
        with BuildLine():
            Line((3.219389508, 39.870233649), (3.219389508, 67.923747918))
            ThreePointArc((3.219389508, 67.923747918), (48.083261121, 48.083261121), (67.923747918, 3.219389508))
            Line((67.923747918, 3.219389508), (59, 3.219389508))
            Line((59, 3.219389508), (39.870233649, 3.219389508))
            ThreePointArc((39.870233649, 3.219389508), (28.284271247, 28.284271247), (3.219389508, 39.870233649))
        make_face(mode=Mode.SUBTRACT)
    extrude(amount=EXTRUDE_1_DEPTH)

    # 草图2 → 切除-拉伸1 (cut)
    with BuildSketch(Plane.XY):
        with Locations((27.5, 0)):
            Circle(SKETCH_2_R)
        with Locations((0, -27.5)):
            Circle(SKETCH_2_R)
        with Locations((-27.5, 0)):
            Circle(SKETCH_2_R)
        with Locations((0, 27.5)):
            Circle(SKETCH_2_R)
    extrude(amount=CUT_EXTRUDE_1_DEPTH, mode=Mode.SUBTRACT)

    # 草图3 → 凸台-拉伸2 (add)
    with BuildSketch(Plane(origin=(0, -75, 0), x_dir=(1, 0, 0), z_dir=(0, 1, 0))):
        Polygon((-75, 0), (-75, -3.5), (-75, -78.5), (0, -14), (75, -78.5), (75, 0), (0, 0), align=None)
    extrude(amount=EXTRUDE_2_DEPTH)

    # 草图4 → 凸台-拉伸3 (add)
    with BuildSketch(Plane.XY):
        with BuildLine():
            Line((-75, 0), (-75, -75))
            Line((-75, -75), (75, -75))
            Line((75, -75), (75, 0))
            Line((75, 0), (68, 0))
            ThreePointArc((68, 0), (0, -68), (-68, 0))
            Line((-68, 0), (-75, 0))
        make_face()
    extrude(amount=EXTRUDE_3_DEPTH)

    # 草图5 → 凸台-拉伸4 (add)
    with BuildSketch(Plane(origin=(-75, 0, 0), x_dir=(0, 0, -1), z_dir=(1, 0, 0))):
        Polygon((0, 0), (-7, 0), (-78.5, -75), (0, -75), align=None)
    extrude_4 = extrude(amount=EXTRUDE_4_DEPTH)

    # 镜向1: 凸台-拉伸4 across plane
    add(extrude_4.mirror(Plane(origin=(0, 0, 0), x_dir=(0, 0, 1), z_dir=(1, 0, 0))))

    # 草图6 → 切除-拉伸2 (cut)
    with BuildSketch(Plane(origin=(-75, 0, 0), x_dir=(0, 0, -1), z_dir=(1, 0, 0))):
        with Locations((-75.163333333, -71.5)):
            Rectangle(SKETCH_6_W, SKETCH_6_H)
    cut_extrude_2 = extrude(amount=CUT_EXTRUDE_2_DEPTH, mode=Mode.SUBTRACT)

    # 镜向5: 切除-拉伸2 across plane
    add(cut_extrude_2.mirror(Plane(origin=(0, 0, 0), x_dir=(0, 0, 1), z_dir=(1, 0, 0))), mode=Mode.SUBTRACT)


solid = part.part
